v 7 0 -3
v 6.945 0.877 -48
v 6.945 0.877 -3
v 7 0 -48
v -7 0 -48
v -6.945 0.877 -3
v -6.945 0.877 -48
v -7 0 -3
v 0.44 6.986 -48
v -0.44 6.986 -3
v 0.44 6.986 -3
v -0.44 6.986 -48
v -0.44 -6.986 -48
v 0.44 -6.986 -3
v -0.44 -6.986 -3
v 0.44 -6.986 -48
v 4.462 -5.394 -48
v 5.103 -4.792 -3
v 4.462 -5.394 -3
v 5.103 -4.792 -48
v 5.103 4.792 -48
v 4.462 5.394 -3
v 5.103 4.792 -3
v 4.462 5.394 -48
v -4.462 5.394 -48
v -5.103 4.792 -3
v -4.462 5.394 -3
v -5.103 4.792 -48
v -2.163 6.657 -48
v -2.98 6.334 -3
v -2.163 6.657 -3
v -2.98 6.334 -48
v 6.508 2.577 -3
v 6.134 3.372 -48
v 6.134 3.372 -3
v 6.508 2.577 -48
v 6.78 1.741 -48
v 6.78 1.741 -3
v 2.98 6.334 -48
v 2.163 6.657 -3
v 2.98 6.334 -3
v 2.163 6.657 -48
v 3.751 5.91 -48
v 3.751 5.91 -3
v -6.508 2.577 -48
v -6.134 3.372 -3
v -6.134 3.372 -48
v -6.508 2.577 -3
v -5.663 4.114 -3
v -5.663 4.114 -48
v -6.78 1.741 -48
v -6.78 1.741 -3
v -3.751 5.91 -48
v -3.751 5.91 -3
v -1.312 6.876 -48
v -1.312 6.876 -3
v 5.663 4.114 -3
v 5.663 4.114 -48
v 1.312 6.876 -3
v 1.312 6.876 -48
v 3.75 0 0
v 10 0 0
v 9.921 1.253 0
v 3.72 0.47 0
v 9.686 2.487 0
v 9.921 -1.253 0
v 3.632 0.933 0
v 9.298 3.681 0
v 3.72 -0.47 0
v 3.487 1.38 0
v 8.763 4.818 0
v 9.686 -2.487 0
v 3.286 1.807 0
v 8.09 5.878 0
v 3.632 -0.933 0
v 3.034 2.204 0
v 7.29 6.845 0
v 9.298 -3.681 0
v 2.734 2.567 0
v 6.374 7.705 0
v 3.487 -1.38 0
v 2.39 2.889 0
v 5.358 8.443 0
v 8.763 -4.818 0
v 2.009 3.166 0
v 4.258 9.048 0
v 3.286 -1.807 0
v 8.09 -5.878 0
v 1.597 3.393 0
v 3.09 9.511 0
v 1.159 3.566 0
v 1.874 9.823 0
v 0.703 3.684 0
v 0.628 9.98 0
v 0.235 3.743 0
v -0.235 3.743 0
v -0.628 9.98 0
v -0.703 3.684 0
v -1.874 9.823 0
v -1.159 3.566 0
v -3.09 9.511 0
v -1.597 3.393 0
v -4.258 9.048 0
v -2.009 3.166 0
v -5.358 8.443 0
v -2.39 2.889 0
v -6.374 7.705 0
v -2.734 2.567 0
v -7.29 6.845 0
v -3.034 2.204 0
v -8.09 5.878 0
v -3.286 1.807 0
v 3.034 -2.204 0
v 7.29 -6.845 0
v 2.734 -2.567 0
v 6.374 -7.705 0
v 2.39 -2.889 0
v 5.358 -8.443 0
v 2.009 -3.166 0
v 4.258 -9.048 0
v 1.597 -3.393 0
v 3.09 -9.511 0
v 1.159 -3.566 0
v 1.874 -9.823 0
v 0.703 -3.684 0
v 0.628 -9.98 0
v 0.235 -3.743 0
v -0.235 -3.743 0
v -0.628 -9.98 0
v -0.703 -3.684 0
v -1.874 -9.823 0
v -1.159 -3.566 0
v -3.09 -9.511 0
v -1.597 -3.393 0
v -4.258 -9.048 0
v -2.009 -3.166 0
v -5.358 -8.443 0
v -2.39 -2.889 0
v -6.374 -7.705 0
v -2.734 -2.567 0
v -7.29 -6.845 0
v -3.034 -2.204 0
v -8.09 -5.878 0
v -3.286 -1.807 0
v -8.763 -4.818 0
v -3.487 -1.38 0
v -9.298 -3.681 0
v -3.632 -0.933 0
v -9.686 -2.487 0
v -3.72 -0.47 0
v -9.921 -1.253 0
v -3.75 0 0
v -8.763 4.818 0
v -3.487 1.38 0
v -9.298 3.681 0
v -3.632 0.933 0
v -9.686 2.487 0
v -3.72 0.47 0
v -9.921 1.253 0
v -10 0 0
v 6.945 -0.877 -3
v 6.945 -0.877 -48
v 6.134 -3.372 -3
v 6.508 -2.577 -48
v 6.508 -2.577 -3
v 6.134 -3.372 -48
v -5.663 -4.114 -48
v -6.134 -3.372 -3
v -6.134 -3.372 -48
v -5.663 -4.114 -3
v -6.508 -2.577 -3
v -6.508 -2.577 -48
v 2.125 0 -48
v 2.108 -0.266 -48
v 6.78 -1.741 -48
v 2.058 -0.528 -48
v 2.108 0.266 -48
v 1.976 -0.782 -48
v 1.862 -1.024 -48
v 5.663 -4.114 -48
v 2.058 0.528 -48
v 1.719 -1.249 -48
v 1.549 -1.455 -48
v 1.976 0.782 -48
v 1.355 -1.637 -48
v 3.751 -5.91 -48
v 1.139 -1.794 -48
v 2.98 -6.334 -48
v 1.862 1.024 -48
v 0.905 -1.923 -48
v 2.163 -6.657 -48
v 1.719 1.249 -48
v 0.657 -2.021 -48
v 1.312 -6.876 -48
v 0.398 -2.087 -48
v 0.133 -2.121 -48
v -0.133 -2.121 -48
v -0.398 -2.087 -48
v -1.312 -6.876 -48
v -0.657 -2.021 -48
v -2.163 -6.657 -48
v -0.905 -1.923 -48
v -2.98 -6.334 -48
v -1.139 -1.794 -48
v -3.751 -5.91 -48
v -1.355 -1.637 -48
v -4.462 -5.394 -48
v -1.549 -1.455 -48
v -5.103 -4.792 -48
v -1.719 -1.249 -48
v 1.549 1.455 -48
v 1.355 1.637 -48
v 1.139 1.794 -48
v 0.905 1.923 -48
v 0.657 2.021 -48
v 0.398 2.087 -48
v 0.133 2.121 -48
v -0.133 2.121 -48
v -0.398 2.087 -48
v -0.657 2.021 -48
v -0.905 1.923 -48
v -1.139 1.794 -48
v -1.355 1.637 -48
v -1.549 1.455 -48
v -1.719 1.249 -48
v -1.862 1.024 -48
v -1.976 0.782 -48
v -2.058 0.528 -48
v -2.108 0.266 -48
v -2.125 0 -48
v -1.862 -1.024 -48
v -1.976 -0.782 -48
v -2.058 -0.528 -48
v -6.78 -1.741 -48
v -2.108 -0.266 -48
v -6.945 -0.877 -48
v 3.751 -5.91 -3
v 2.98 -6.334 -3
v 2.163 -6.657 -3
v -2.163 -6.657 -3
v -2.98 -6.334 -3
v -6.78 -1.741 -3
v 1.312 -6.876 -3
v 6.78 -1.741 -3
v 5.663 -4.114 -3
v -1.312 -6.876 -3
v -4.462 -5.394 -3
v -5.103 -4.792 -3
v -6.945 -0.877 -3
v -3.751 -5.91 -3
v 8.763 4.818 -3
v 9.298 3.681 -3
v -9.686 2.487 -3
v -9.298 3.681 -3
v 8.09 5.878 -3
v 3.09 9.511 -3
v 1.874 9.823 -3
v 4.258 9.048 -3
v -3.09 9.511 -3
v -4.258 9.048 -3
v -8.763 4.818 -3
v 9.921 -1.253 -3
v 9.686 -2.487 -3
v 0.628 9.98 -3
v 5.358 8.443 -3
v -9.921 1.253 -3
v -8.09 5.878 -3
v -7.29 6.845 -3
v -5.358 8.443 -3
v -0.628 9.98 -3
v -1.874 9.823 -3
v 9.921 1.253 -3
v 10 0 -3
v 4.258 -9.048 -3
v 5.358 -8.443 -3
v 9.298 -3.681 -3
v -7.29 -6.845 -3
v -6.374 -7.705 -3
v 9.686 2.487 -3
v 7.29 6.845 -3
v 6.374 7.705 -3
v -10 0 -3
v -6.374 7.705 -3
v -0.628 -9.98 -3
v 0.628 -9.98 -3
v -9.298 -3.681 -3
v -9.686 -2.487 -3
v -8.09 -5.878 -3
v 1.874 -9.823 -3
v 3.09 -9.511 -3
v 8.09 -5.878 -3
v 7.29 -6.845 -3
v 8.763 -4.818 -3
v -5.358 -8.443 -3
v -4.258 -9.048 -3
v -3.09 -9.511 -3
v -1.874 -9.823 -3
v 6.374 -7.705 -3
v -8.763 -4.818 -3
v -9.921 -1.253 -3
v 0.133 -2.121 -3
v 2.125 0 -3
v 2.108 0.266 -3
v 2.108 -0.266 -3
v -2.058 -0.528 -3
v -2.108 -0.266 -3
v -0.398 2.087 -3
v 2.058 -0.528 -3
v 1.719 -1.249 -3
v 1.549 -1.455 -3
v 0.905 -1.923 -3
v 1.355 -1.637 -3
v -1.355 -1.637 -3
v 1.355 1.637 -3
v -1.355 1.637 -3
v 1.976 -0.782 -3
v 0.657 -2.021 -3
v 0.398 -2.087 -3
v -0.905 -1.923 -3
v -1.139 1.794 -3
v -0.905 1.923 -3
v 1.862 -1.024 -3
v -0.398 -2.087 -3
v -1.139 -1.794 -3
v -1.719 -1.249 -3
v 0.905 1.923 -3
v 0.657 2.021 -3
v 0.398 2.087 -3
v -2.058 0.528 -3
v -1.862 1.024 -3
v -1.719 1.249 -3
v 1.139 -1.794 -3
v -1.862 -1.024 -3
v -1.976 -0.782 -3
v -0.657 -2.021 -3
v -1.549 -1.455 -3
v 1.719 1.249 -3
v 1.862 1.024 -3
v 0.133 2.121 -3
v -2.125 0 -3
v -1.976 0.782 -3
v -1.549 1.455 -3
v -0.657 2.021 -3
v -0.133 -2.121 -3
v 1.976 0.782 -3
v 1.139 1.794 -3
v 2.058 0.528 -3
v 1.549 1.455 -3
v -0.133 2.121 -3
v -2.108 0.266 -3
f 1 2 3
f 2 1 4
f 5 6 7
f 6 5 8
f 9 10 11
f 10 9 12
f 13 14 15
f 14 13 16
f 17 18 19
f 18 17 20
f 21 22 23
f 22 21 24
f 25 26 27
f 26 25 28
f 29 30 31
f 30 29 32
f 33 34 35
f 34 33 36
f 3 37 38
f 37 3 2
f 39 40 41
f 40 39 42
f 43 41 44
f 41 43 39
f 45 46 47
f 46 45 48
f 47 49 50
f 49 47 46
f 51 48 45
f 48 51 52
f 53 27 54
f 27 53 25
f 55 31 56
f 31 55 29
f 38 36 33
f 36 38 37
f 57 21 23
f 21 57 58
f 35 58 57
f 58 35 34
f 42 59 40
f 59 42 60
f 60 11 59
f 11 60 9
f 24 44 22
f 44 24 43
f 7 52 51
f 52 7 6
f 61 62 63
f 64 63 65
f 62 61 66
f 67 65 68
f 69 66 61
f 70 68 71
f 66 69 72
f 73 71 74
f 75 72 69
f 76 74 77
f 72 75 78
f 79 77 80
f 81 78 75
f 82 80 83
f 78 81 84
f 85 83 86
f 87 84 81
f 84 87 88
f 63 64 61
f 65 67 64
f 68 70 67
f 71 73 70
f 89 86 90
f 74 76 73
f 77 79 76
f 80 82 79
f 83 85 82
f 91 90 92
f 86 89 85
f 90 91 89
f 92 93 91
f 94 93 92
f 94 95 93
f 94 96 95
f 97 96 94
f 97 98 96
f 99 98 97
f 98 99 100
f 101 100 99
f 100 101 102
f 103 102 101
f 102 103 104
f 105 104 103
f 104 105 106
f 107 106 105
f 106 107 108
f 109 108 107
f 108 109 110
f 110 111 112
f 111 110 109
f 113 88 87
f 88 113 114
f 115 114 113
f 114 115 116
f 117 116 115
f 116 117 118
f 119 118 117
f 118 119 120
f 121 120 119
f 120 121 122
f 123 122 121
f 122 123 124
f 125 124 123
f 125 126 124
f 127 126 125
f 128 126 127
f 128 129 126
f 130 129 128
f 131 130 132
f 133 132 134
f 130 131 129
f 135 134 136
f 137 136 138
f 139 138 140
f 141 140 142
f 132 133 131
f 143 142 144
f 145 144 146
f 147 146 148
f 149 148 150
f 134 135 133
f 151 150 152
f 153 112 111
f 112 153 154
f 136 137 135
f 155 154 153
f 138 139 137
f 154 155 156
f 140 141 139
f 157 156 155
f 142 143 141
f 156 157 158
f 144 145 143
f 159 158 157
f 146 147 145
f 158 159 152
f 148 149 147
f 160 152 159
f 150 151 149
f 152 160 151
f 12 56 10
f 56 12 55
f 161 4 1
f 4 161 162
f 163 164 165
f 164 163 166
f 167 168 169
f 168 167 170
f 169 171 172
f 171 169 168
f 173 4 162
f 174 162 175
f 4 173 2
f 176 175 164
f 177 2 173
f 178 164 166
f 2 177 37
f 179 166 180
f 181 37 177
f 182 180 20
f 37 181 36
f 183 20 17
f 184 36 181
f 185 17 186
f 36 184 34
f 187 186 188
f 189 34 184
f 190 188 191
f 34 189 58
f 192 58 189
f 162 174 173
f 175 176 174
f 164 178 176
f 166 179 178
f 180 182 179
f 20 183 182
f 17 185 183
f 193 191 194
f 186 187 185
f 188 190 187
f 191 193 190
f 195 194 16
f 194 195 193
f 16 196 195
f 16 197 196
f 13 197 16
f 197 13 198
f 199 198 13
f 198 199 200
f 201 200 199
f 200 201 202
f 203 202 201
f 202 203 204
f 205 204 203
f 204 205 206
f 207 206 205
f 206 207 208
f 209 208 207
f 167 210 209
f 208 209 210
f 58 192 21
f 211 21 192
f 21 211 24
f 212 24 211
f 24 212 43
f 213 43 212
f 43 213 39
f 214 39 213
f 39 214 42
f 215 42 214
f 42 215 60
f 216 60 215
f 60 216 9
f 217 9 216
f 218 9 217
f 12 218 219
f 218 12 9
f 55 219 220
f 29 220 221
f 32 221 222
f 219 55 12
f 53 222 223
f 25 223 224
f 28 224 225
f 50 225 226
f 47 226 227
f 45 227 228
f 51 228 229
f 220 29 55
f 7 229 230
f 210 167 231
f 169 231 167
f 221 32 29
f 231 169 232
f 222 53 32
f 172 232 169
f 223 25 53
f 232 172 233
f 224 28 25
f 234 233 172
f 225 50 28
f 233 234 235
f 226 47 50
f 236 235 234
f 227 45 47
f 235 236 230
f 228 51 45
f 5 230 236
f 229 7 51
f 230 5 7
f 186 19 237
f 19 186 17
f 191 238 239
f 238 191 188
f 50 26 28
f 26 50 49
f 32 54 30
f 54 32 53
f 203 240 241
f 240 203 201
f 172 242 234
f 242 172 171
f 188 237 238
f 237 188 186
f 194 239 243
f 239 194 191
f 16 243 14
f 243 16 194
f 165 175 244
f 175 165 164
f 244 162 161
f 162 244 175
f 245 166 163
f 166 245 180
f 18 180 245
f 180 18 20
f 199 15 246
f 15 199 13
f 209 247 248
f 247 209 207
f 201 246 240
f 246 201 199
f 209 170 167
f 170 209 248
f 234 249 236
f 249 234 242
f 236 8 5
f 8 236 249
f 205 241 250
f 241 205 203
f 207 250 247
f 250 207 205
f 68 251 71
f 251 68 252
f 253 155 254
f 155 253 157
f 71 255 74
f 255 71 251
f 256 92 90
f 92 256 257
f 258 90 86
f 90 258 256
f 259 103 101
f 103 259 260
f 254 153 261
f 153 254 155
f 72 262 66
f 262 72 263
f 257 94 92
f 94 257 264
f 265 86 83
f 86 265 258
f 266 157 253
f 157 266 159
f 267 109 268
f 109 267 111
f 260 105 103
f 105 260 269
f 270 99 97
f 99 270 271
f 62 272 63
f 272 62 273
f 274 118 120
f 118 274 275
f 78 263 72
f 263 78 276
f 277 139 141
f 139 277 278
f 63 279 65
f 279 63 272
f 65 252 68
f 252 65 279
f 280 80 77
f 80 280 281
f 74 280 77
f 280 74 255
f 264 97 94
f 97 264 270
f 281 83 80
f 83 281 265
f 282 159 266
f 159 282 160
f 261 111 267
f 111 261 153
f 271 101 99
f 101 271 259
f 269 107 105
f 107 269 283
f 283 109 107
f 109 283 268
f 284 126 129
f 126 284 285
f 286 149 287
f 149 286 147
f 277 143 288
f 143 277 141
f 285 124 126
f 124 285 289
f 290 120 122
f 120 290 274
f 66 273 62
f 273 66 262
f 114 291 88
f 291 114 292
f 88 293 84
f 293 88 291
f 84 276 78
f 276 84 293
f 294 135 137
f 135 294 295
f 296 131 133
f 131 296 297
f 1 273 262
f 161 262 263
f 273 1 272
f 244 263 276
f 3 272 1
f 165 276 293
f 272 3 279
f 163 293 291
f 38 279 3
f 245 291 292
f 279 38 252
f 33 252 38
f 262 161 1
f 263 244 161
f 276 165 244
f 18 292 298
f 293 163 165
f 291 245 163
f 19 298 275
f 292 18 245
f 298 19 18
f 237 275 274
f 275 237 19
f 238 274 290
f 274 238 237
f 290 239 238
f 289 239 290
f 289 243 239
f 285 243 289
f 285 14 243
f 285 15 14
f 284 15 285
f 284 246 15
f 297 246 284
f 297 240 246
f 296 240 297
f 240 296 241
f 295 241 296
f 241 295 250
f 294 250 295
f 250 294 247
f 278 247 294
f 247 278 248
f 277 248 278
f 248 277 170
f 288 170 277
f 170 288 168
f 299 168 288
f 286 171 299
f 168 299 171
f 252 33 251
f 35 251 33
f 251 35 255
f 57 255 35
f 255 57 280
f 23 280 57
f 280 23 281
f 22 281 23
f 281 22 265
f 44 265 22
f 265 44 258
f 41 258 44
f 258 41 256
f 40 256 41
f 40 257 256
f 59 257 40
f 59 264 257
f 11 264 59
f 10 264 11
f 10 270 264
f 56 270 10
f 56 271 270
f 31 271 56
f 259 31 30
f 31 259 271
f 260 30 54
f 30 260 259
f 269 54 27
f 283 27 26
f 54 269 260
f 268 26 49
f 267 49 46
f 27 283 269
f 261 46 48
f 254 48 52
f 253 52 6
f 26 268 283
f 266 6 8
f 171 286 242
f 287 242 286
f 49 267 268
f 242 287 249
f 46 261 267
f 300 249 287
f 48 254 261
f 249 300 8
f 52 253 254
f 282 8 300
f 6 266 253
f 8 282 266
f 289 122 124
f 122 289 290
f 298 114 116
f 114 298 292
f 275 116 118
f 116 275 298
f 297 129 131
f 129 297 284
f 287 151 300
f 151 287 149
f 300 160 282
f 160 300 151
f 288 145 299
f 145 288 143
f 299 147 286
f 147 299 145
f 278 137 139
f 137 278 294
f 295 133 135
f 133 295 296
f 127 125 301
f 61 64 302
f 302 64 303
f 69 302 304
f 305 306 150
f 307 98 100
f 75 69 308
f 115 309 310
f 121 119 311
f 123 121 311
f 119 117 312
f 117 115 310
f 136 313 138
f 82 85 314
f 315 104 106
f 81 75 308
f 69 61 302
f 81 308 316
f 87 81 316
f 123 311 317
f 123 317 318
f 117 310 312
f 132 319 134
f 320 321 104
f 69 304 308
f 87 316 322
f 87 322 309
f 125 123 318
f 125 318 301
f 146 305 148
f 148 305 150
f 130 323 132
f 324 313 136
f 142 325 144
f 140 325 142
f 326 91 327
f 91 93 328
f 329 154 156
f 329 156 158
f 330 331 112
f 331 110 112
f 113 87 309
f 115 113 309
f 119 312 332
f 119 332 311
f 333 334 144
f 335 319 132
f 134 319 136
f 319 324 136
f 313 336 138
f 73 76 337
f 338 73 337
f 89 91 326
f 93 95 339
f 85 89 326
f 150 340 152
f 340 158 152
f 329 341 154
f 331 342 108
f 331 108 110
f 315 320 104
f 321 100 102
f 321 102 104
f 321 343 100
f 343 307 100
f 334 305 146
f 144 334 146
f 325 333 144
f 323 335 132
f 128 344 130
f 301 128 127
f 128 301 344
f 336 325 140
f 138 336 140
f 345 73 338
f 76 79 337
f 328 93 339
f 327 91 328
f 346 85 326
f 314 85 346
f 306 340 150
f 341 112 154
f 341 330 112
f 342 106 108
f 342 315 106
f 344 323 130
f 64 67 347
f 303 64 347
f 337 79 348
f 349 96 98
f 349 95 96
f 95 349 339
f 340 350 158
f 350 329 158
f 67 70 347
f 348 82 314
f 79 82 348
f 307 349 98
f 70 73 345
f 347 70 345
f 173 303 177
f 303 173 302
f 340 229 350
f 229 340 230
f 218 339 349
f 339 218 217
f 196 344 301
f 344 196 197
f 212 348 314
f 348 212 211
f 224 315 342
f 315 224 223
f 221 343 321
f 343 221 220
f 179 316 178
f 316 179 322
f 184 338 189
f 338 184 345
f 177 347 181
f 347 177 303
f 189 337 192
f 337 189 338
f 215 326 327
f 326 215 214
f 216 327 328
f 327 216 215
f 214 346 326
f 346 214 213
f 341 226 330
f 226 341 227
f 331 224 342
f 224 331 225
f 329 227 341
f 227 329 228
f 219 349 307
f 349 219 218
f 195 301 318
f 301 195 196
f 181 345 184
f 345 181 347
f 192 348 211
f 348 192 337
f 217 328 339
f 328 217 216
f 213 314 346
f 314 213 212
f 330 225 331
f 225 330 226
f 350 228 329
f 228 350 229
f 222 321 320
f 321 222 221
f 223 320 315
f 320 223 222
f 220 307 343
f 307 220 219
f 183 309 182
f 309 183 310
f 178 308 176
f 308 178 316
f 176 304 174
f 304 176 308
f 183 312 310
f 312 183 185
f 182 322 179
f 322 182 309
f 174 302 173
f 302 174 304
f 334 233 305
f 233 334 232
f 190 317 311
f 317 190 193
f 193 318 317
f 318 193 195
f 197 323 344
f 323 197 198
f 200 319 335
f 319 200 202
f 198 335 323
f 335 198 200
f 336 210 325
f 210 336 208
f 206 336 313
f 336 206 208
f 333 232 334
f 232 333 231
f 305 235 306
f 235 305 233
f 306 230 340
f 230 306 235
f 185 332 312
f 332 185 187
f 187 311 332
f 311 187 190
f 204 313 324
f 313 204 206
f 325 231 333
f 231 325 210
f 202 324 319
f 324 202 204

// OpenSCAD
$fn = 50;


difference() {
	union() {
		translate(v = [0, 0, -48.0000000000]) {
			cylinder(h = 48, r = 7.0000000000);
		}
		translate(v = [0, 0, -3.0000000000]) {
			cylinder(h = 3, r = 10.0000000000);
		}
	}
	union() {
		translate(v = [0, 0, 0]) {
			rotate(a = [0, 0, 0]) {
				difference() {
					union() {
						#translate(v = [0, 0, -48.0000000000]) {
							cylinder(h = 48, r = 2.0000000000);
						}
						#translate(v = [0, 0, -3]) {
							cylinder(h = 3, r = 7.0000000000, r1 = 2.1250000000, r2 = 3.7500000000);
						}
						#translate(v = [0, 0, -48.0000000000]) {
							cylinder(h = 48, r = 2.1250000000);
						}
						#translate(v = [0, 0, -48.0000000000]) {
							cylinder(h = 48, r = 2.0000000000);
						}
					}
					union();
				}
			}
		}
	}
}
